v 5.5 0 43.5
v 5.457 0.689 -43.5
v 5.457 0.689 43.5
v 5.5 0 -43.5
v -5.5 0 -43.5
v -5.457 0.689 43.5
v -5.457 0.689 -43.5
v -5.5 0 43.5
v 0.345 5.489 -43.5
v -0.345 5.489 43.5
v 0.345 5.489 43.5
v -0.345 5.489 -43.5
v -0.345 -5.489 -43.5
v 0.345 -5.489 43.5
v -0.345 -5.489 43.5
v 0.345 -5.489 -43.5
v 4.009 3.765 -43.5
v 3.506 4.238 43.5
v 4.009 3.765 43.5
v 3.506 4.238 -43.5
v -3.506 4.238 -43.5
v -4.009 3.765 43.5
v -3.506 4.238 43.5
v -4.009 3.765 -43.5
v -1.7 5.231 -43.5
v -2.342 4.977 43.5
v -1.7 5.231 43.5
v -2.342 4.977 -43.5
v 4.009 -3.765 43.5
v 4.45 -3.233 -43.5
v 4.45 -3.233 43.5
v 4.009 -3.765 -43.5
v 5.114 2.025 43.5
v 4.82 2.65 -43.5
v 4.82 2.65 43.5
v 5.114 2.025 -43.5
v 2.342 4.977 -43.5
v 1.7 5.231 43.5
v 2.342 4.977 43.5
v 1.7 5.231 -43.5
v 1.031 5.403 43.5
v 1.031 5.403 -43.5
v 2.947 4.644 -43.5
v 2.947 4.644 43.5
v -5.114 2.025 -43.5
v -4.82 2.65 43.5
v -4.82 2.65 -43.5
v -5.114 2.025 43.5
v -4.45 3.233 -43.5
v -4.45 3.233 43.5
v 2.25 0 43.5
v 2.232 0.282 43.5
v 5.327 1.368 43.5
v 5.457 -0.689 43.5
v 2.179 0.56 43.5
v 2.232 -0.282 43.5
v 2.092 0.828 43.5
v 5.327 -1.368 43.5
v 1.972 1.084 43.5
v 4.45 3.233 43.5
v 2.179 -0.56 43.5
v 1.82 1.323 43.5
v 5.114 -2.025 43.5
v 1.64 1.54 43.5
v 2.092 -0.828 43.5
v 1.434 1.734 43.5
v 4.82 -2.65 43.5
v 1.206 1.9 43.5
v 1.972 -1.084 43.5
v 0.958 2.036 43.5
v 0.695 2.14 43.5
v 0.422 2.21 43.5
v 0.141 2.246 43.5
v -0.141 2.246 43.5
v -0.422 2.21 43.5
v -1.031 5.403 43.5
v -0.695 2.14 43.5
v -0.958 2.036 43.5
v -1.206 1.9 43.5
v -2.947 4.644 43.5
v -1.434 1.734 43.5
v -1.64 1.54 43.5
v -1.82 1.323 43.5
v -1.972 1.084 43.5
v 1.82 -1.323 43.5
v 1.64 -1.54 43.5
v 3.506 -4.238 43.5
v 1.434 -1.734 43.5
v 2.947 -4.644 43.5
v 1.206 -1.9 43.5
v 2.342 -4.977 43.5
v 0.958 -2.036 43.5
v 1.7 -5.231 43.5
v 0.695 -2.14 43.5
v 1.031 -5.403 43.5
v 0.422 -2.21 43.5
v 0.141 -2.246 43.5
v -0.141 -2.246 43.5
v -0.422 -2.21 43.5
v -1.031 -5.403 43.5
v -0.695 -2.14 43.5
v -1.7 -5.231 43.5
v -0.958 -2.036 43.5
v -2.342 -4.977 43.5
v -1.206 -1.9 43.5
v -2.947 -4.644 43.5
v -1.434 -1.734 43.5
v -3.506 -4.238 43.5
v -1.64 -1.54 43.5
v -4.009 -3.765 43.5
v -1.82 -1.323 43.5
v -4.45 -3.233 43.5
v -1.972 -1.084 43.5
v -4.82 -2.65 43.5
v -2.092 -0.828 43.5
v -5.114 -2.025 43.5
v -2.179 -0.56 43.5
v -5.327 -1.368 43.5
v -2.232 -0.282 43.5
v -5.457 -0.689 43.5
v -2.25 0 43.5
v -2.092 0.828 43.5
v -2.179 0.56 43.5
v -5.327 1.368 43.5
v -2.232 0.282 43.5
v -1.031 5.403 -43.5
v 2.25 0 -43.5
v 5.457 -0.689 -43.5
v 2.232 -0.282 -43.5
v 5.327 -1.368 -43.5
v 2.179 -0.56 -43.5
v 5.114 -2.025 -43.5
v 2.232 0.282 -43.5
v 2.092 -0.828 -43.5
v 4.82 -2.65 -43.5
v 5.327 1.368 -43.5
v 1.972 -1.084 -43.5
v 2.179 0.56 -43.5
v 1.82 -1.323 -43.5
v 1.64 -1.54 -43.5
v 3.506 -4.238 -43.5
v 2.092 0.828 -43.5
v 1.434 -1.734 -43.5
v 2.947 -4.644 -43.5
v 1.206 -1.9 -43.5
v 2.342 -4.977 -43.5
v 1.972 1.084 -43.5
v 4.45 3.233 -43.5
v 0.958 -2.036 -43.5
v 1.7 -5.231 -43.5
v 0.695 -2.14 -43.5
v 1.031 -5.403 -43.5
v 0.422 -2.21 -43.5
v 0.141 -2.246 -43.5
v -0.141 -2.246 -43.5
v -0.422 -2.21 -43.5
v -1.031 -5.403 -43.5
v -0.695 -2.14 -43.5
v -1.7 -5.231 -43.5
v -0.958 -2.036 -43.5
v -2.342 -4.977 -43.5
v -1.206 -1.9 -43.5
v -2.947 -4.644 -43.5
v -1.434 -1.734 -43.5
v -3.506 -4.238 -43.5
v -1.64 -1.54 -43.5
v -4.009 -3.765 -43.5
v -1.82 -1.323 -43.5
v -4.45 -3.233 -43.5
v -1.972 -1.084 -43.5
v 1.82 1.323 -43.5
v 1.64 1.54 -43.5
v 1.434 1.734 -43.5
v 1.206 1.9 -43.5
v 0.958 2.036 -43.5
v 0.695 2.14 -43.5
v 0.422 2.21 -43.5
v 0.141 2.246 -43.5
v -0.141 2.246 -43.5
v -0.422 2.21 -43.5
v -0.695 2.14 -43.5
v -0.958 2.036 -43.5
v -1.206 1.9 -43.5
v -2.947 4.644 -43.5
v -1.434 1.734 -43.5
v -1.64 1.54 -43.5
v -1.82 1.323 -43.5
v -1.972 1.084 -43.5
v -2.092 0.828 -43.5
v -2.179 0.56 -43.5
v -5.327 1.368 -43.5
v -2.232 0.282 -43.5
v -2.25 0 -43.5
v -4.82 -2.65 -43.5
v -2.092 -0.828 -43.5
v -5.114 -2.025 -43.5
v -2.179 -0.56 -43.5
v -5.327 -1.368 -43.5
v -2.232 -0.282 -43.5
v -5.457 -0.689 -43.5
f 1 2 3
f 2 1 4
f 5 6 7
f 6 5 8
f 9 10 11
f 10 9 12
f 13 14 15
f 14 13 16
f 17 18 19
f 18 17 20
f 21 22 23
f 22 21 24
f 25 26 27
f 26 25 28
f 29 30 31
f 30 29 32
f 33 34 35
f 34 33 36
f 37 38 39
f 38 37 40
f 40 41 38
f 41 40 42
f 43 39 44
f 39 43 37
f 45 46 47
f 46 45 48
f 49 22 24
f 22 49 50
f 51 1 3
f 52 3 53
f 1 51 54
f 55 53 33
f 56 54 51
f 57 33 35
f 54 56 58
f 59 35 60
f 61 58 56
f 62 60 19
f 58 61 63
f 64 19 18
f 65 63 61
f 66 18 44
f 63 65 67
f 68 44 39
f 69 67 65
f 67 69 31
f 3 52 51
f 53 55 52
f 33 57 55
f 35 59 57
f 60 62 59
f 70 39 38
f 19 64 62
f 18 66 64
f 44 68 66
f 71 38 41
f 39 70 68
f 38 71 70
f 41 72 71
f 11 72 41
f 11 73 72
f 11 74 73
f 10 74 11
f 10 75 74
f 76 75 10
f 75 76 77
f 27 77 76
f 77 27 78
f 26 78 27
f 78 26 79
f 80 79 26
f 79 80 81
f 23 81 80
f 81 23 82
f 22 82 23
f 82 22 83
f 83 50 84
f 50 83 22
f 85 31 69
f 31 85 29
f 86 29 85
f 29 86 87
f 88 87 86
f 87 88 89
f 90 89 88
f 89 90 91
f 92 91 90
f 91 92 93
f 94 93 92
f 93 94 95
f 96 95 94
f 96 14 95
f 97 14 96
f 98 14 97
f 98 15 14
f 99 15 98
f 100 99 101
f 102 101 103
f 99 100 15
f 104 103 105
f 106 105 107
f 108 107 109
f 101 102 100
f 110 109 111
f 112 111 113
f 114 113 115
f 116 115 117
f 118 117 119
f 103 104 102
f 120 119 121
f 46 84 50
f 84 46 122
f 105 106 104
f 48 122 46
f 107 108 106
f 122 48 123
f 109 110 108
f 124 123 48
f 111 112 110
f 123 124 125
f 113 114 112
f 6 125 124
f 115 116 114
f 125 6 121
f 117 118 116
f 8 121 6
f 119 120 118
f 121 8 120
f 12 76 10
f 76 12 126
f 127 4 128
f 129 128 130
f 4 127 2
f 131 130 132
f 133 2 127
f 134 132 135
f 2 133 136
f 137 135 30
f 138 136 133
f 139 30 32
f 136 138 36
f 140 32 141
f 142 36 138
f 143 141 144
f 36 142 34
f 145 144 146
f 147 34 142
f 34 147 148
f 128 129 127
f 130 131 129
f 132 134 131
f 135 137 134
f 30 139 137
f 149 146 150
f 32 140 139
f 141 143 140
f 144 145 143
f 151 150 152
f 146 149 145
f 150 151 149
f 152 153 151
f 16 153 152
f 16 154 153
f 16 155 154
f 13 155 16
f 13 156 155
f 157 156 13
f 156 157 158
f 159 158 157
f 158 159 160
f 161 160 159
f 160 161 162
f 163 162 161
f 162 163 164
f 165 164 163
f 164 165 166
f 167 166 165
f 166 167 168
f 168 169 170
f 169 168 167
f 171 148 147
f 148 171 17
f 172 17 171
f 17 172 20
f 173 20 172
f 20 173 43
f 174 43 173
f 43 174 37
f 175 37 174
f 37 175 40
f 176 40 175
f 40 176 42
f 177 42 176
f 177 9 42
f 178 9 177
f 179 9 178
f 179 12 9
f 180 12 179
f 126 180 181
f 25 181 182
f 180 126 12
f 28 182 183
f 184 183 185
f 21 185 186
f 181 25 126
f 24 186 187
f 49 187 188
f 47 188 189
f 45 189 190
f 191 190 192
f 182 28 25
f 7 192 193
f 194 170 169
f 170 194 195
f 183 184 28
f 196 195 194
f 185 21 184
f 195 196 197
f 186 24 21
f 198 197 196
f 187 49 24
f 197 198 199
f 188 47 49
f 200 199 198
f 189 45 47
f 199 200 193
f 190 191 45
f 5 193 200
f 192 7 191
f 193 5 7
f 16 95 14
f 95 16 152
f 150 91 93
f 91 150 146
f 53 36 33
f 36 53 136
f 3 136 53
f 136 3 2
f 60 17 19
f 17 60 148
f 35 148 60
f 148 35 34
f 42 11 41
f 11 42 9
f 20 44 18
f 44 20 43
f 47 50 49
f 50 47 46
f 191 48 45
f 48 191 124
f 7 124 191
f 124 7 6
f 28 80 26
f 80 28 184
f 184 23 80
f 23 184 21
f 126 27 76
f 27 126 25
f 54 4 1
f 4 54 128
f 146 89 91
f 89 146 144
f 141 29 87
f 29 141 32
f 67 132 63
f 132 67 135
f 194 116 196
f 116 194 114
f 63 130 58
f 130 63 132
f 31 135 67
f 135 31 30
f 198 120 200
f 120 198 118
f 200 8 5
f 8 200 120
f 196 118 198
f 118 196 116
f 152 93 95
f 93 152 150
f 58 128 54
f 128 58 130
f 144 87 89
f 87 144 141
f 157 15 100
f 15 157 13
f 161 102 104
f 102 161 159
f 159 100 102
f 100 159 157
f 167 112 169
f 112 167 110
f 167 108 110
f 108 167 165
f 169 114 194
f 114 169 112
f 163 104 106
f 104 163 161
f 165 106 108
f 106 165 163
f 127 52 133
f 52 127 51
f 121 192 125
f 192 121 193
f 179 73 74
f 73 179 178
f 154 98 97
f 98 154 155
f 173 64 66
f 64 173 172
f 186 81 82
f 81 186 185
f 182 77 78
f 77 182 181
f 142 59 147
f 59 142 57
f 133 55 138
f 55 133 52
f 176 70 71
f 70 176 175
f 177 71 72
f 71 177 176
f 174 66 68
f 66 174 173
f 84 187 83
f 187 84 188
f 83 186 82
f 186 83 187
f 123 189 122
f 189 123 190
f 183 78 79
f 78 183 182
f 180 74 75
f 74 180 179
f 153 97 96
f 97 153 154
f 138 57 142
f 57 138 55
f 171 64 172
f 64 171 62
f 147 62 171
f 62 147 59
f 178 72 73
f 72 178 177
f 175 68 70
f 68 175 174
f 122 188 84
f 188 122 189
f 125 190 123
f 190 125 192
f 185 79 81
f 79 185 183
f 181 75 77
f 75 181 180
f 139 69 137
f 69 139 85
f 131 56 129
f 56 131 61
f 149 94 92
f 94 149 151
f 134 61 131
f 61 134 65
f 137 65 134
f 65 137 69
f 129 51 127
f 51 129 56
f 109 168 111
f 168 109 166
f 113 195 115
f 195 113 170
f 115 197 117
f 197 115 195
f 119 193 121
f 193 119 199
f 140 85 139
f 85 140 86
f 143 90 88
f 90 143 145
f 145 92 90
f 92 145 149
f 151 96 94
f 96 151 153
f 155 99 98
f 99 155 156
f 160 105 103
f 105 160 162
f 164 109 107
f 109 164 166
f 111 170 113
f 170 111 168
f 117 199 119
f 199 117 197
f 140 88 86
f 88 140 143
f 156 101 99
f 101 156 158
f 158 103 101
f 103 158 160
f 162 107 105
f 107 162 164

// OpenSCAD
$fn = 50;


difference() {
	union() {
		translate(v = [0, 0, -43.5000000000]) {
			cylinder(h = 87, r = 5.5000000000);
		}
	}
	union() {
		translate(v = [0, 0, -100.0000000000]) {
			cylinder(h = 200, r = 2.2500000000);
		}
	}
}
